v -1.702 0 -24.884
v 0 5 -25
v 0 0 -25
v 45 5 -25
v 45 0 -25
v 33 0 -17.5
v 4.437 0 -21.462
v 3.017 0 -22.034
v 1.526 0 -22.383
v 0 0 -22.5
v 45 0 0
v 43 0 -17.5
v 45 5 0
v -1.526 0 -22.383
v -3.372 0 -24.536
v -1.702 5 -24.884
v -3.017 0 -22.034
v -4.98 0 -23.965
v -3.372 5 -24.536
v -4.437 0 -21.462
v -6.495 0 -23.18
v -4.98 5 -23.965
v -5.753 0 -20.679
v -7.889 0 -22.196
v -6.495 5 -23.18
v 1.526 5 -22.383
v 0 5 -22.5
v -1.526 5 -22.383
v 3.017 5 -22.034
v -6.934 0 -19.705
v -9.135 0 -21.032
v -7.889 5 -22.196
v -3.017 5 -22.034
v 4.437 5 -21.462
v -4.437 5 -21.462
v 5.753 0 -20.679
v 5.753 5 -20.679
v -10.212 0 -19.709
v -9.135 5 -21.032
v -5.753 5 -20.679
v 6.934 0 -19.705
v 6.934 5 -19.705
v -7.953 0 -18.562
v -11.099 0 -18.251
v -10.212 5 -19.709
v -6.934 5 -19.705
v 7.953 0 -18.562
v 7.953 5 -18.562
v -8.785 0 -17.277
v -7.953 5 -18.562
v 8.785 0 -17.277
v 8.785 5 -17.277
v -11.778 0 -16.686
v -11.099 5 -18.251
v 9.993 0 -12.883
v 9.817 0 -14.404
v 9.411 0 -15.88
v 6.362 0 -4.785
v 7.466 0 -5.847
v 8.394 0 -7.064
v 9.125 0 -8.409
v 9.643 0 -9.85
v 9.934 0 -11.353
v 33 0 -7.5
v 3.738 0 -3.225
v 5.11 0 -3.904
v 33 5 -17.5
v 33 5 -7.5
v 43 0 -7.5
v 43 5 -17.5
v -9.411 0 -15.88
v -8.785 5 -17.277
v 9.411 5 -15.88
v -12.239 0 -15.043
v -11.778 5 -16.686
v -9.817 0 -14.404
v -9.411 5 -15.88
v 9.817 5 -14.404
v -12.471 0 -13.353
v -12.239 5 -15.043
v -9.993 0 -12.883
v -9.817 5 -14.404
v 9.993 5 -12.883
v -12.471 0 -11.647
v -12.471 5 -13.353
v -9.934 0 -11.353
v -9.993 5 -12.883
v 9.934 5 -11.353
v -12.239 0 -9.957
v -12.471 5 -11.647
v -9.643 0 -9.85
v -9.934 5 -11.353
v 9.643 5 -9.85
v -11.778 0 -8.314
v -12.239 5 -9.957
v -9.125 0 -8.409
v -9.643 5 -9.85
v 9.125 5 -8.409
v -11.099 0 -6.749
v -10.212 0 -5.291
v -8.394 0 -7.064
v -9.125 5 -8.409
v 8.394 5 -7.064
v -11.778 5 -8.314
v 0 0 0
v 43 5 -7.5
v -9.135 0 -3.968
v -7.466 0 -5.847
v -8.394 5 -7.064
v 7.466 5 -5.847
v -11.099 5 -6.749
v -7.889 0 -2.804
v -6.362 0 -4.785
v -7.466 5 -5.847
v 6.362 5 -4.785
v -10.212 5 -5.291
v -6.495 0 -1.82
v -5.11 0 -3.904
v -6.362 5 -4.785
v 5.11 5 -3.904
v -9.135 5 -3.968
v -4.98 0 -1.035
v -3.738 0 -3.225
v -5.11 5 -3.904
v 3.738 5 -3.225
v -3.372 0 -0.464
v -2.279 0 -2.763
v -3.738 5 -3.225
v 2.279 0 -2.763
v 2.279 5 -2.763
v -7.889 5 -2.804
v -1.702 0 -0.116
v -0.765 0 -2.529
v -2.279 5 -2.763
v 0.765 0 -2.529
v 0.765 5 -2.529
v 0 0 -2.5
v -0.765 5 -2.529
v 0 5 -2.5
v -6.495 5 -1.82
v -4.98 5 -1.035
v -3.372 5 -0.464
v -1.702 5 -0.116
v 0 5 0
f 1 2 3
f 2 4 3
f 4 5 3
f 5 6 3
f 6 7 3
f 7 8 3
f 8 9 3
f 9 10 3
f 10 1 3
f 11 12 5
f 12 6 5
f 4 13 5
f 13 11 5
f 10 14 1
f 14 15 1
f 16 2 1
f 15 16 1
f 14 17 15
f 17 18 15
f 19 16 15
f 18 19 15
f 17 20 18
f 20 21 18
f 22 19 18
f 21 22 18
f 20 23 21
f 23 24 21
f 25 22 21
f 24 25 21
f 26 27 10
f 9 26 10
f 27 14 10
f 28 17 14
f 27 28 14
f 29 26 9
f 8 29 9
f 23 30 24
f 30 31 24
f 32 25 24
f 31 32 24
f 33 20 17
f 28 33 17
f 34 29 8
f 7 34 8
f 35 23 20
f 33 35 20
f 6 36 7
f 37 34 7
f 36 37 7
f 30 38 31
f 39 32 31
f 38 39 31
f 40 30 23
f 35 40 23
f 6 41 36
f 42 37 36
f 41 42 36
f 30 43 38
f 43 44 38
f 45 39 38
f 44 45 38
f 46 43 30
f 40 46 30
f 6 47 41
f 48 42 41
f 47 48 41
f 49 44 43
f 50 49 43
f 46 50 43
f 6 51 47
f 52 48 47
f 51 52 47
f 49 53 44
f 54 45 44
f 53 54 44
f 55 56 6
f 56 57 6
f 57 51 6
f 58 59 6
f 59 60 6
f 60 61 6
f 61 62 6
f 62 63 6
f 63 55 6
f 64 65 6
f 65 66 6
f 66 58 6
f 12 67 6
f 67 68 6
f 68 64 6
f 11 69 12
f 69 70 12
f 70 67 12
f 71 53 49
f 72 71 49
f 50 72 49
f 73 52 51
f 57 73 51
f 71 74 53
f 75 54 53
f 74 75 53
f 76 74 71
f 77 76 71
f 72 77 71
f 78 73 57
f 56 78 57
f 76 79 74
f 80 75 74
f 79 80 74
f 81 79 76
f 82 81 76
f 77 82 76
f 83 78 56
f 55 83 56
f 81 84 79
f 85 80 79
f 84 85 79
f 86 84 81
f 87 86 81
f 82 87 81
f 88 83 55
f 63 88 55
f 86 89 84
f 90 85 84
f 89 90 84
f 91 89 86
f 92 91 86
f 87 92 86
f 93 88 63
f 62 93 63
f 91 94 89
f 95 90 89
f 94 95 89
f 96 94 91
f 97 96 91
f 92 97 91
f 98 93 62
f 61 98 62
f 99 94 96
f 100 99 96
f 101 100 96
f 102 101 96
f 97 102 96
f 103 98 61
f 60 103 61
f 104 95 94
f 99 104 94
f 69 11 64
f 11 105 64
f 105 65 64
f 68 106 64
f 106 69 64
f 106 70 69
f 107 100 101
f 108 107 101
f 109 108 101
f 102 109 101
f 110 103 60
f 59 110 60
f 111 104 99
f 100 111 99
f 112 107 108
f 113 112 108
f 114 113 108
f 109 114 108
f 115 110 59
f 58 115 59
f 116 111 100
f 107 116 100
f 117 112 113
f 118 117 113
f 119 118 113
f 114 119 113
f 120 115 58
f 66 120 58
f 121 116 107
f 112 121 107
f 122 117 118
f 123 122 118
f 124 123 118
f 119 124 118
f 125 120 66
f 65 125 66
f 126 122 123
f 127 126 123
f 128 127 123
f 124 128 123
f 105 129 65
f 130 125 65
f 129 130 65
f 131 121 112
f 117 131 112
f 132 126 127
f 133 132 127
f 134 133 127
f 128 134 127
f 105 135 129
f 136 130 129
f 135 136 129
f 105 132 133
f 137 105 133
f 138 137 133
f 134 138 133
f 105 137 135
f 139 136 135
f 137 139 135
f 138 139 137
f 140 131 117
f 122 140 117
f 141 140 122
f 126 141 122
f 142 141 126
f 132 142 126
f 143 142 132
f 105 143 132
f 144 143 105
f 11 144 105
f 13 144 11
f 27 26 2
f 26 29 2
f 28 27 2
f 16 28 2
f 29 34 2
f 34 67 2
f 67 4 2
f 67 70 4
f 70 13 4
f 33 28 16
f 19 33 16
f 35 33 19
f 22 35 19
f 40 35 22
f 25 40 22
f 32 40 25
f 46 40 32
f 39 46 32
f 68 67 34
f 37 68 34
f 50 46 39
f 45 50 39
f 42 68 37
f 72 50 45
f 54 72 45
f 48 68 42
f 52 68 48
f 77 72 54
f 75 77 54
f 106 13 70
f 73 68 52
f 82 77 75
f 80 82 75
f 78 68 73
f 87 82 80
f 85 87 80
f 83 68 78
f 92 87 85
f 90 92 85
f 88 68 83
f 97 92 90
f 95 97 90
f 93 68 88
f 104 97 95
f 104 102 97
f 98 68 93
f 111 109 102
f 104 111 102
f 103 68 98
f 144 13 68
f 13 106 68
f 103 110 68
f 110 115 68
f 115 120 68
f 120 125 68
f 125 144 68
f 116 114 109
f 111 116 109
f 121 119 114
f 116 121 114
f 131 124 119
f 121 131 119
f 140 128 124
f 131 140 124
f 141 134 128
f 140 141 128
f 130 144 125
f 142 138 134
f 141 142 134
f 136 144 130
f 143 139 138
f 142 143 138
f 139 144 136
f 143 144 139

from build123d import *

# Parameters (mm, degrees)
SKETCH1_R           = 10
SKETCH1_W           = 10
SKETCH1_H           = 10
BOSS_EXTRUDE1_DEPTH = 5


with BuildPart() as part:
    # Sketch1 → Boss-Extrude1 (new body)
    with BuildSketch(Plane(origin=(0, 0, 0), x_dir=(1, 0, 0), z_dir=(0, 1, 0))):
        with BuildLine():
            Line((0, 0), (45, 0))
            Line((45, 0), (45, 25))
            Line((45, 25), (0, 25))
            ThreePointArc((0, 25), (-12.5, 12.5), (0, 0))
        make_face()
        with Locations(Location((0, 12.5, 0), (0, 0, 270))):
            Circle(SKETCH1_R, mode=Mode.SUBTRACT)
        with Locations((38, 12.5)):
            Rectangle(SKETCH1_W, SKETCH1_H, mode=Mode.SUBTRACT)
    extrude(amount=BOSS_EXTRUDE1_DEPTH)


solid = part.part
